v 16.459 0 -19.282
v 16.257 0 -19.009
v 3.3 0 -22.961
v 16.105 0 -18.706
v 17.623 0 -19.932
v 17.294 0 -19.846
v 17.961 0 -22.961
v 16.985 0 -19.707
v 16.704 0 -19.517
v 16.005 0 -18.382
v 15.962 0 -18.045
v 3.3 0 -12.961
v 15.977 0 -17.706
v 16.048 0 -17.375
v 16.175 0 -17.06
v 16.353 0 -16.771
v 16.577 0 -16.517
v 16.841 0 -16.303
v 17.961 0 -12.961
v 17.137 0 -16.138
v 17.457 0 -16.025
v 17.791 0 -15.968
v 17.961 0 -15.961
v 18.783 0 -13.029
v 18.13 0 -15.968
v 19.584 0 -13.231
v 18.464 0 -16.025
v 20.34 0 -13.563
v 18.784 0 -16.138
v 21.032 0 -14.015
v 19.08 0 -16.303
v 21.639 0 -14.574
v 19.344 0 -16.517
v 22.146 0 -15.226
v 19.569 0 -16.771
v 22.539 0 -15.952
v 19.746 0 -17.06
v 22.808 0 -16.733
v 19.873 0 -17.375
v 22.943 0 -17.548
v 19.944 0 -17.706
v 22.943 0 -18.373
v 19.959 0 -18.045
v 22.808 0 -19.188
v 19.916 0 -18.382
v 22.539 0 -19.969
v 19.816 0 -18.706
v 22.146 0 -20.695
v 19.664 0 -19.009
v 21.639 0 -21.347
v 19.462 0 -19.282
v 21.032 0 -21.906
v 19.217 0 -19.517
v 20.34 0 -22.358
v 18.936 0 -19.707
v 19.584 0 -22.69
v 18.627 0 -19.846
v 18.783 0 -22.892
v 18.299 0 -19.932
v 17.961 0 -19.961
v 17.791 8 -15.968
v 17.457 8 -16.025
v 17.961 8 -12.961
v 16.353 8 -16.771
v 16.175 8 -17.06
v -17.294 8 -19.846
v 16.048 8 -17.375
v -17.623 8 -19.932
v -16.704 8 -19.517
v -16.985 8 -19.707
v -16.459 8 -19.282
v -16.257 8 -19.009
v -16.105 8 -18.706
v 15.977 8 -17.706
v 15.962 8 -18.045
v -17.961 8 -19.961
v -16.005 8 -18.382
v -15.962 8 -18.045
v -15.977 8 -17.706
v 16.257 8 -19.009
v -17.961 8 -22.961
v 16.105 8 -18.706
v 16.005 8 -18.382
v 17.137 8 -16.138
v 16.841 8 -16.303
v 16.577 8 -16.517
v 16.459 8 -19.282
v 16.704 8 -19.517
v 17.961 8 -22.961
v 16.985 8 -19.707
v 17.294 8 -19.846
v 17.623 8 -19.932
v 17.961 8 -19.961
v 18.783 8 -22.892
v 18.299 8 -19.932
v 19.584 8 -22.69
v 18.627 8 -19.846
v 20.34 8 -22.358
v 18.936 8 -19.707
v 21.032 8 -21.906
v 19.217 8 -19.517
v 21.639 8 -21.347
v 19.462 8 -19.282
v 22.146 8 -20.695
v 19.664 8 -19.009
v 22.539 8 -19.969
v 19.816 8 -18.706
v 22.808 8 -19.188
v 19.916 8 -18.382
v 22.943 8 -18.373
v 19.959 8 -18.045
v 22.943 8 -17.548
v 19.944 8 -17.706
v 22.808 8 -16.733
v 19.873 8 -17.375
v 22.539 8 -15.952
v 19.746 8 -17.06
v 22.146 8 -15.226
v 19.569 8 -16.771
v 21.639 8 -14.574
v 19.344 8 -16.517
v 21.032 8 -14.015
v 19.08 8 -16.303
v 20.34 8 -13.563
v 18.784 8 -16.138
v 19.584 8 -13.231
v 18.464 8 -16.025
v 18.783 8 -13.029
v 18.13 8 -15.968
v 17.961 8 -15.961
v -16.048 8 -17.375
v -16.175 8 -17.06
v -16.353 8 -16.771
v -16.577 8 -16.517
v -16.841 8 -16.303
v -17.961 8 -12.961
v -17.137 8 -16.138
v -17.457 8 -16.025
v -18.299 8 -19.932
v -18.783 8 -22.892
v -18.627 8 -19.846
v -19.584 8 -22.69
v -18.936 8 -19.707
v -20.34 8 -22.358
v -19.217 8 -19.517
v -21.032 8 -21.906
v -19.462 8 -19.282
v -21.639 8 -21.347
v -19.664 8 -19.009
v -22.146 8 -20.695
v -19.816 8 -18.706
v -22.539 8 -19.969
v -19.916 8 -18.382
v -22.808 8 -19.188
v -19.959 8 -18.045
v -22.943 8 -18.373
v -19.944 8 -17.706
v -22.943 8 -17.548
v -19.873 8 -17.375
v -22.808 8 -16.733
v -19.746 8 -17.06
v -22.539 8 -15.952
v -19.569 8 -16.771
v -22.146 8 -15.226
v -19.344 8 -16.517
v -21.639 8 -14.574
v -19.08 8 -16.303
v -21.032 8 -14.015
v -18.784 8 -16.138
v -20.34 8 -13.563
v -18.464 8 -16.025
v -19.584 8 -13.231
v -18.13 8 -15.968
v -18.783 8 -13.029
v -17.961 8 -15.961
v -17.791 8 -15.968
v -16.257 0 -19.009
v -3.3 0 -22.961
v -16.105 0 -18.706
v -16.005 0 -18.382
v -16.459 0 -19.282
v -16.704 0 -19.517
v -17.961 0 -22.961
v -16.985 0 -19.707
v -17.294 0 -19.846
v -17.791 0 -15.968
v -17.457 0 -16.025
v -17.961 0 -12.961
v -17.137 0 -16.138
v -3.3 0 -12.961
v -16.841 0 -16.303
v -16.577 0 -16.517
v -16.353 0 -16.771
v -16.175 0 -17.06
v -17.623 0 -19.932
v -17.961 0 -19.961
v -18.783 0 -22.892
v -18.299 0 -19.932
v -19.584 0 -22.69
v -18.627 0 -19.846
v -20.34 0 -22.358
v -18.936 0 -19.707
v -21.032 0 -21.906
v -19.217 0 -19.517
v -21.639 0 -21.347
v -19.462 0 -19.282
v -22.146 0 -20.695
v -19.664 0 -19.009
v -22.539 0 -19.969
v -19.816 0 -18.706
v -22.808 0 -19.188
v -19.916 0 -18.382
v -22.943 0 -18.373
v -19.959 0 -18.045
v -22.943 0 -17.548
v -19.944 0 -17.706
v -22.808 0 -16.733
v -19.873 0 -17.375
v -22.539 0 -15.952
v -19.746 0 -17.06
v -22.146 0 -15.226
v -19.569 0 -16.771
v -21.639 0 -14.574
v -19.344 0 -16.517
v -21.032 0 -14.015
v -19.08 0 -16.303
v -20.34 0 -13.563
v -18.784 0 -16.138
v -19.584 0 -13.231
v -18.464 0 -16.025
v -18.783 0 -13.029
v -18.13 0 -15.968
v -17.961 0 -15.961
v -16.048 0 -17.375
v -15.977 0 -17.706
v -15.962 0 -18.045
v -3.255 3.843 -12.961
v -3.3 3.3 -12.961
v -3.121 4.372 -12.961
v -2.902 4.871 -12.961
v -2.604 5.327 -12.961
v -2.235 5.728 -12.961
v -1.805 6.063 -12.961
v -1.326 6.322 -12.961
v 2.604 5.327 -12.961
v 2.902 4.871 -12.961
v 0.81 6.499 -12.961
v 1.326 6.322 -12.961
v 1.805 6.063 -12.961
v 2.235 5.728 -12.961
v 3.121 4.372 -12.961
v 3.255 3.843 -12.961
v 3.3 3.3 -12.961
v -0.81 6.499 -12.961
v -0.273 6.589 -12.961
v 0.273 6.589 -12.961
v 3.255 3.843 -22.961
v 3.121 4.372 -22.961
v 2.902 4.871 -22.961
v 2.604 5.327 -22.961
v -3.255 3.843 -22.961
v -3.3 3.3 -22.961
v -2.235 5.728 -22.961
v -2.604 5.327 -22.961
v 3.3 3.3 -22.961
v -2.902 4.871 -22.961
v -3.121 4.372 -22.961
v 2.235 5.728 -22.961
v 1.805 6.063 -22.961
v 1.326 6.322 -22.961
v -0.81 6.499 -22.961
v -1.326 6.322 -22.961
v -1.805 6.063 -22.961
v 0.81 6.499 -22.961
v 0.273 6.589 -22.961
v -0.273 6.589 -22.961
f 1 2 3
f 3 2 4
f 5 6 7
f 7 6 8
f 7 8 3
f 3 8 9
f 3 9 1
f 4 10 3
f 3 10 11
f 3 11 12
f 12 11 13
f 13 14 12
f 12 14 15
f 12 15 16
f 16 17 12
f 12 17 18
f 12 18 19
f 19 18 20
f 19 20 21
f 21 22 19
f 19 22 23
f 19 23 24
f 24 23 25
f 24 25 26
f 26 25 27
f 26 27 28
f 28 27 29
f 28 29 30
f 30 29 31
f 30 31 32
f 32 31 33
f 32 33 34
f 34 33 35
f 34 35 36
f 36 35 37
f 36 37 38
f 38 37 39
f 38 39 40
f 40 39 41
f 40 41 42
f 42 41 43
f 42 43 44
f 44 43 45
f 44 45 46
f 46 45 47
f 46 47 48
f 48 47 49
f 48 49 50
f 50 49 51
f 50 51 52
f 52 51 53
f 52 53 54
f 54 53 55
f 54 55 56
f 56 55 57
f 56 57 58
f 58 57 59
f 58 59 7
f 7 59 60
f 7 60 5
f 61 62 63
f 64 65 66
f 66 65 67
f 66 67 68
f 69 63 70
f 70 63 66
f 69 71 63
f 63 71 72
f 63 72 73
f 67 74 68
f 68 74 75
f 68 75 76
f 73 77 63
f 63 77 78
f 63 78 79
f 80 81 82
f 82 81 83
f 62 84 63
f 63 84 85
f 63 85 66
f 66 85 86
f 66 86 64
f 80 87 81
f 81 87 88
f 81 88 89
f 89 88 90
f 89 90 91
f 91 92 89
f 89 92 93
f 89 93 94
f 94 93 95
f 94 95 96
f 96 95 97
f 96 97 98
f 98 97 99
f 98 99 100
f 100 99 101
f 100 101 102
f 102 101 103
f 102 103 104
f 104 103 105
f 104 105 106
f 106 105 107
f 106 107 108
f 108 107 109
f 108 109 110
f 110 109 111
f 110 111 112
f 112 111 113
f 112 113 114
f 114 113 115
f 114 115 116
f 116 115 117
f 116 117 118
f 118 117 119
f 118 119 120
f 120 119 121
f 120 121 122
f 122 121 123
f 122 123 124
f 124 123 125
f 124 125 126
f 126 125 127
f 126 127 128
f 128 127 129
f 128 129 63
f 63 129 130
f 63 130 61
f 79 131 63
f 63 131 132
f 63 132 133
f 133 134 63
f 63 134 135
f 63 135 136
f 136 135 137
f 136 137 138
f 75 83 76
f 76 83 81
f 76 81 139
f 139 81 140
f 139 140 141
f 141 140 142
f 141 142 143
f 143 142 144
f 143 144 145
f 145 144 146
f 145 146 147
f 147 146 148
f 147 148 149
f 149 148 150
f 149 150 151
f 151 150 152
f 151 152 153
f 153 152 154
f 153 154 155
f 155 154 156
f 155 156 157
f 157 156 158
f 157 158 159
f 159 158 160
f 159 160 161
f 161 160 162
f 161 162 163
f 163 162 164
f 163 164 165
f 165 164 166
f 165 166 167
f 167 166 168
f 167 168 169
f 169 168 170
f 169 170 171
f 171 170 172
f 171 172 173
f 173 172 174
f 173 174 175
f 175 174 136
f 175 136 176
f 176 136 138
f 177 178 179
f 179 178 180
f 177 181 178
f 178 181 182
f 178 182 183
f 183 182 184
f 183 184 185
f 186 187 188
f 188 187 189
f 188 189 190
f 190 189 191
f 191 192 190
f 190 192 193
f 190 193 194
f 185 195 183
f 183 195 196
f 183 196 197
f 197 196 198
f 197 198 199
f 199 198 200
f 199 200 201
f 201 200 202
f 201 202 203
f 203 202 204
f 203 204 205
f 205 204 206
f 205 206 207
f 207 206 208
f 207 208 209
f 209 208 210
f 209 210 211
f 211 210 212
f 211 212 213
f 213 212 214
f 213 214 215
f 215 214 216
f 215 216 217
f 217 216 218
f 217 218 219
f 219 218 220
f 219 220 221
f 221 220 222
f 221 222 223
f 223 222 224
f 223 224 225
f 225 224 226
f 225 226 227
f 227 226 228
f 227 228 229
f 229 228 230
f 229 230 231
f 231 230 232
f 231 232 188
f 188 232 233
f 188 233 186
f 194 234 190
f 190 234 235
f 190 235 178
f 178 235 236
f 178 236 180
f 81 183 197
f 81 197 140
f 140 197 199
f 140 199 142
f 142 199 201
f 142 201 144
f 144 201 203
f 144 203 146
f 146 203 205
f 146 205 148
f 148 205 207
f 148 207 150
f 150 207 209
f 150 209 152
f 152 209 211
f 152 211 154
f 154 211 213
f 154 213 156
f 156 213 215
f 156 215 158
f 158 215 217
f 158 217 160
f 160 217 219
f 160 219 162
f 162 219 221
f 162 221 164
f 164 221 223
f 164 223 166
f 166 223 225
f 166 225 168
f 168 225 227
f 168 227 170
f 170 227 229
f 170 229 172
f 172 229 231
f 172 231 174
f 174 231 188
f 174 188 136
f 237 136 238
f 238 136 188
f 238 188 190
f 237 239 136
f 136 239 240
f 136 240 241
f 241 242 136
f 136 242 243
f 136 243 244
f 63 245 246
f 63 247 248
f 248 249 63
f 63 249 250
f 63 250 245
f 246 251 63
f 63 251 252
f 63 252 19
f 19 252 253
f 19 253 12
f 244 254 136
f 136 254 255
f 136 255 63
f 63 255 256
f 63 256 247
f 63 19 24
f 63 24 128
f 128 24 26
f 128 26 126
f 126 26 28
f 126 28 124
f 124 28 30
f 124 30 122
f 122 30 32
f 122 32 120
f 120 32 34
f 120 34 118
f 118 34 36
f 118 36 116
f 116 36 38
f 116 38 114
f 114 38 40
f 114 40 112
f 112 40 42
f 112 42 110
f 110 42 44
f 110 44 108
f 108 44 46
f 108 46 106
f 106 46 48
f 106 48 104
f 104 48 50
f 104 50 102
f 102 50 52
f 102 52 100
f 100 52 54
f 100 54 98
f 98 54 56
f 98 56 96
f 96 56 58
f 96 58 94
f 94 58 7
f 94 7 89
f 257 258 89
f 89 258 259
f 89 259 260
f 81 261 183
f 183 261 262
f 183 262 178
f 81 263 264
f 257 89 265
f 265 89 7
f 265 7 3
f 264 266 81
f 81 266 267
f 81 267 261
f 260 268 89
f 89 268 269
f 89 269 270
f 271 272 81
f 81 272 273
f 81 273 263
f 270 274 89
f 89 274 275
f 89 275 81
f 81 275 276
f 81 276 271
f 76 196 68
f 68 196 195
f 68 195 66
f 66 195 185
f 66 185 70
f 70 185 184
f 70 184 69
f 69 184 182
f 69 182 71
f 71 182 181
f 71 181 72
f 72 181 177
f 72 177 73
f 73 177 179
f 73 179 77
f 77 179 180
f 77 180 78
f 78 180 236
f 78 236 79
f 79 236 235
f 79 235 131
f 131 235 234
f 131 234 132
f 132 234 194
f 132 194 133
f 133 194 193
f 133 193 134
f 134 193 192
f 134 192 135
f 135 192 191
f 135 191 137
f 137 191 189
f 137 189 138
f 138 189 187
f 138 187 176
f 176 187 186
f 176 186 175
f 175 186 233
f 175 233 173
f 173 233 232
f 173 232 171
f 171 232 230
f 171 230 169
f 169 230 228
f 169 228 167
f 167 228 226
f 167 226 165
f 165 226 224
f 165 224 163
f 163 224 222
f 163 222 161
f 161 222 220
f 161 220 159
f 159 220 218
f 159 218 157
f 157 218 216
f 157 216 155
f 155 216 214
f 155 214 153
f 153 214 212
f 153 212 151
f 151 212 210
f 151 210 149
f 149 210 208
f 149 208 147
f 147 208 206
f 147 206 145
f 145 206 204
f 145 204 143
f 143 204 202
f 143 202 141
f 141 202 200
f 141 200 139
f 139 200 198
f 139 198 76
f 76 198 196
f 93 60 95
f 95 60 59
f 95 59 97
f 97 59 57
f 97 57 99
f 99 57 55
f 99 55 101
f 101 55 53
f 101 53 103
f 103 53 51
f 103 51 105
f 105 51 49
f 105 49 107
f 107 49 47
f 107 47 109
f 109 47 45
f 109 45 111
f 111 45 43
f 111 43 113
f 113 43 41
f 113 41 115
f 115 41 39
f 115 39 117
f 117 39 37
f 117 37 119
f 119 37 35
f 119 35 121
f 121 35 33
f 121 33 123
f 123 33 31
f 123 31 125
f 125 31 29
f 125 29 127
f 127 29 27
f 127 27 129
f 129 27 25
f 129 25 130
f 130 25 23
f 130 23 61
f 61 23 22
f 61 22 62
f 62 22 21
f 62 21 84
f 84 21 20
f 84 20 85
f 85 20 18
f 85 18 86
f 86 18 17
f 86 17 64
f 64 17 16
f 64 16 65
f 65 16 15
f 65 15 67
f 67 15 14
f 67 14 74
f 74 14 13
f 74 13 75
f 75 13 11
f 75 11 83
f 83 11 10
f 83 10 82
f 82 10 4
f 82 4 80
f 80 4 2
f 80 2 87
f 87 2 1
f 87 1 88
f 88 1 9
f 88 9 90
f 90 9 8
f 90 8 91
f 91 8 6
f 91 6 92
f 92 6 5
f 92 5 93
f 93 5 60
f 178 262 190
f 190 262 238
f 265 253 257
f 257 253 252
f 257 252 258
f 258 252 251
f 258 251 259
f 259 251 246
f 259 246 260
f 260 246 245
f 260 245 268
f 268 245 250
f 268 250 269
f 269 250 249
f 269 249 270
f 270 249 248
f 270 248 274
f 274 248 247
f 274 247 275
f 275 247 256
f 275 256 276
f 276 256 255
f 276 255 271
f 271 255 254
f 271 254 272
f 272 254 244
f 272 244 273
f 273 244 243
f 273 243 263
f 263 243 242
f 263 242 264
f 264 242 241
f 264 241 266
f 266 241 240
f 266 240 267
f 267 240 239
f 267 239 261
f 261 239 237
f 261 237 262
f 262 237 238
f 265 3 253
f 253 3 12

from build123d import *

# Parameters (mm, degrees)
SKETCH1_R           = 2
BOSS_EXTRUDE1_DEPTH = 8
CUT_EXTRUDE1_DEPTH  = 27.290399815


with BuildPart() as part:
    # Sketch1 → Boss-Extrude1 (new body)
    with BuildSketch(Plane(origin=(0, 0, 0), x_dir=(1, 0, 0), z_dir=(0, 1, 0))):
        with BuildLine():
            Line((-17.960512242, 22.960512242), (17.960512242, 22.960512242))
            ThreePointArc((17.960512242, 22.960512242), (22.960512242, 17.960512242), (17.960512242, 12.960512242))
            Line((17.960512242, 12.960512242), (-17.960512242, 12.960512242))
            ThreePointArc((-17.960512242, 12.960512242), (-22.960512242, 17.960512242), (-17.960512242, 22.960512242))
        make_face()
        with Locations((-17.960512242, 17.960512242)):
            Circle(SKETCH1_R, mode=Mode.SUBTRACT)
        with Locations((17.960512242, 17.960512242)):
            Circle(SKETCH1_R, mode=Mode.SUBTRACT)
    extrude(amount=BOSS_EXTRUDE1_DEPTH)

    # Sketch2 → Cut-Extrude1 (cut, through all)
    with BuildSketch(Plane.XY.offset(-12.960512242)):
        with BuildLine():
            ThreePointArc((3.3, 3.3), (0, 6.6), (-3.3, 3.3))
            Line((-3.3, 3.3), (-3.3, 0))
            Line((-3.3, 0), (3.3, 0))
            Line((3.3, 0), (3.3, 3.3))
        make_face()
    extrude(amount=-CUT_EXTRUDE1_DEPTH, mode=Mode.SUBTRACT)


solid = part.part
